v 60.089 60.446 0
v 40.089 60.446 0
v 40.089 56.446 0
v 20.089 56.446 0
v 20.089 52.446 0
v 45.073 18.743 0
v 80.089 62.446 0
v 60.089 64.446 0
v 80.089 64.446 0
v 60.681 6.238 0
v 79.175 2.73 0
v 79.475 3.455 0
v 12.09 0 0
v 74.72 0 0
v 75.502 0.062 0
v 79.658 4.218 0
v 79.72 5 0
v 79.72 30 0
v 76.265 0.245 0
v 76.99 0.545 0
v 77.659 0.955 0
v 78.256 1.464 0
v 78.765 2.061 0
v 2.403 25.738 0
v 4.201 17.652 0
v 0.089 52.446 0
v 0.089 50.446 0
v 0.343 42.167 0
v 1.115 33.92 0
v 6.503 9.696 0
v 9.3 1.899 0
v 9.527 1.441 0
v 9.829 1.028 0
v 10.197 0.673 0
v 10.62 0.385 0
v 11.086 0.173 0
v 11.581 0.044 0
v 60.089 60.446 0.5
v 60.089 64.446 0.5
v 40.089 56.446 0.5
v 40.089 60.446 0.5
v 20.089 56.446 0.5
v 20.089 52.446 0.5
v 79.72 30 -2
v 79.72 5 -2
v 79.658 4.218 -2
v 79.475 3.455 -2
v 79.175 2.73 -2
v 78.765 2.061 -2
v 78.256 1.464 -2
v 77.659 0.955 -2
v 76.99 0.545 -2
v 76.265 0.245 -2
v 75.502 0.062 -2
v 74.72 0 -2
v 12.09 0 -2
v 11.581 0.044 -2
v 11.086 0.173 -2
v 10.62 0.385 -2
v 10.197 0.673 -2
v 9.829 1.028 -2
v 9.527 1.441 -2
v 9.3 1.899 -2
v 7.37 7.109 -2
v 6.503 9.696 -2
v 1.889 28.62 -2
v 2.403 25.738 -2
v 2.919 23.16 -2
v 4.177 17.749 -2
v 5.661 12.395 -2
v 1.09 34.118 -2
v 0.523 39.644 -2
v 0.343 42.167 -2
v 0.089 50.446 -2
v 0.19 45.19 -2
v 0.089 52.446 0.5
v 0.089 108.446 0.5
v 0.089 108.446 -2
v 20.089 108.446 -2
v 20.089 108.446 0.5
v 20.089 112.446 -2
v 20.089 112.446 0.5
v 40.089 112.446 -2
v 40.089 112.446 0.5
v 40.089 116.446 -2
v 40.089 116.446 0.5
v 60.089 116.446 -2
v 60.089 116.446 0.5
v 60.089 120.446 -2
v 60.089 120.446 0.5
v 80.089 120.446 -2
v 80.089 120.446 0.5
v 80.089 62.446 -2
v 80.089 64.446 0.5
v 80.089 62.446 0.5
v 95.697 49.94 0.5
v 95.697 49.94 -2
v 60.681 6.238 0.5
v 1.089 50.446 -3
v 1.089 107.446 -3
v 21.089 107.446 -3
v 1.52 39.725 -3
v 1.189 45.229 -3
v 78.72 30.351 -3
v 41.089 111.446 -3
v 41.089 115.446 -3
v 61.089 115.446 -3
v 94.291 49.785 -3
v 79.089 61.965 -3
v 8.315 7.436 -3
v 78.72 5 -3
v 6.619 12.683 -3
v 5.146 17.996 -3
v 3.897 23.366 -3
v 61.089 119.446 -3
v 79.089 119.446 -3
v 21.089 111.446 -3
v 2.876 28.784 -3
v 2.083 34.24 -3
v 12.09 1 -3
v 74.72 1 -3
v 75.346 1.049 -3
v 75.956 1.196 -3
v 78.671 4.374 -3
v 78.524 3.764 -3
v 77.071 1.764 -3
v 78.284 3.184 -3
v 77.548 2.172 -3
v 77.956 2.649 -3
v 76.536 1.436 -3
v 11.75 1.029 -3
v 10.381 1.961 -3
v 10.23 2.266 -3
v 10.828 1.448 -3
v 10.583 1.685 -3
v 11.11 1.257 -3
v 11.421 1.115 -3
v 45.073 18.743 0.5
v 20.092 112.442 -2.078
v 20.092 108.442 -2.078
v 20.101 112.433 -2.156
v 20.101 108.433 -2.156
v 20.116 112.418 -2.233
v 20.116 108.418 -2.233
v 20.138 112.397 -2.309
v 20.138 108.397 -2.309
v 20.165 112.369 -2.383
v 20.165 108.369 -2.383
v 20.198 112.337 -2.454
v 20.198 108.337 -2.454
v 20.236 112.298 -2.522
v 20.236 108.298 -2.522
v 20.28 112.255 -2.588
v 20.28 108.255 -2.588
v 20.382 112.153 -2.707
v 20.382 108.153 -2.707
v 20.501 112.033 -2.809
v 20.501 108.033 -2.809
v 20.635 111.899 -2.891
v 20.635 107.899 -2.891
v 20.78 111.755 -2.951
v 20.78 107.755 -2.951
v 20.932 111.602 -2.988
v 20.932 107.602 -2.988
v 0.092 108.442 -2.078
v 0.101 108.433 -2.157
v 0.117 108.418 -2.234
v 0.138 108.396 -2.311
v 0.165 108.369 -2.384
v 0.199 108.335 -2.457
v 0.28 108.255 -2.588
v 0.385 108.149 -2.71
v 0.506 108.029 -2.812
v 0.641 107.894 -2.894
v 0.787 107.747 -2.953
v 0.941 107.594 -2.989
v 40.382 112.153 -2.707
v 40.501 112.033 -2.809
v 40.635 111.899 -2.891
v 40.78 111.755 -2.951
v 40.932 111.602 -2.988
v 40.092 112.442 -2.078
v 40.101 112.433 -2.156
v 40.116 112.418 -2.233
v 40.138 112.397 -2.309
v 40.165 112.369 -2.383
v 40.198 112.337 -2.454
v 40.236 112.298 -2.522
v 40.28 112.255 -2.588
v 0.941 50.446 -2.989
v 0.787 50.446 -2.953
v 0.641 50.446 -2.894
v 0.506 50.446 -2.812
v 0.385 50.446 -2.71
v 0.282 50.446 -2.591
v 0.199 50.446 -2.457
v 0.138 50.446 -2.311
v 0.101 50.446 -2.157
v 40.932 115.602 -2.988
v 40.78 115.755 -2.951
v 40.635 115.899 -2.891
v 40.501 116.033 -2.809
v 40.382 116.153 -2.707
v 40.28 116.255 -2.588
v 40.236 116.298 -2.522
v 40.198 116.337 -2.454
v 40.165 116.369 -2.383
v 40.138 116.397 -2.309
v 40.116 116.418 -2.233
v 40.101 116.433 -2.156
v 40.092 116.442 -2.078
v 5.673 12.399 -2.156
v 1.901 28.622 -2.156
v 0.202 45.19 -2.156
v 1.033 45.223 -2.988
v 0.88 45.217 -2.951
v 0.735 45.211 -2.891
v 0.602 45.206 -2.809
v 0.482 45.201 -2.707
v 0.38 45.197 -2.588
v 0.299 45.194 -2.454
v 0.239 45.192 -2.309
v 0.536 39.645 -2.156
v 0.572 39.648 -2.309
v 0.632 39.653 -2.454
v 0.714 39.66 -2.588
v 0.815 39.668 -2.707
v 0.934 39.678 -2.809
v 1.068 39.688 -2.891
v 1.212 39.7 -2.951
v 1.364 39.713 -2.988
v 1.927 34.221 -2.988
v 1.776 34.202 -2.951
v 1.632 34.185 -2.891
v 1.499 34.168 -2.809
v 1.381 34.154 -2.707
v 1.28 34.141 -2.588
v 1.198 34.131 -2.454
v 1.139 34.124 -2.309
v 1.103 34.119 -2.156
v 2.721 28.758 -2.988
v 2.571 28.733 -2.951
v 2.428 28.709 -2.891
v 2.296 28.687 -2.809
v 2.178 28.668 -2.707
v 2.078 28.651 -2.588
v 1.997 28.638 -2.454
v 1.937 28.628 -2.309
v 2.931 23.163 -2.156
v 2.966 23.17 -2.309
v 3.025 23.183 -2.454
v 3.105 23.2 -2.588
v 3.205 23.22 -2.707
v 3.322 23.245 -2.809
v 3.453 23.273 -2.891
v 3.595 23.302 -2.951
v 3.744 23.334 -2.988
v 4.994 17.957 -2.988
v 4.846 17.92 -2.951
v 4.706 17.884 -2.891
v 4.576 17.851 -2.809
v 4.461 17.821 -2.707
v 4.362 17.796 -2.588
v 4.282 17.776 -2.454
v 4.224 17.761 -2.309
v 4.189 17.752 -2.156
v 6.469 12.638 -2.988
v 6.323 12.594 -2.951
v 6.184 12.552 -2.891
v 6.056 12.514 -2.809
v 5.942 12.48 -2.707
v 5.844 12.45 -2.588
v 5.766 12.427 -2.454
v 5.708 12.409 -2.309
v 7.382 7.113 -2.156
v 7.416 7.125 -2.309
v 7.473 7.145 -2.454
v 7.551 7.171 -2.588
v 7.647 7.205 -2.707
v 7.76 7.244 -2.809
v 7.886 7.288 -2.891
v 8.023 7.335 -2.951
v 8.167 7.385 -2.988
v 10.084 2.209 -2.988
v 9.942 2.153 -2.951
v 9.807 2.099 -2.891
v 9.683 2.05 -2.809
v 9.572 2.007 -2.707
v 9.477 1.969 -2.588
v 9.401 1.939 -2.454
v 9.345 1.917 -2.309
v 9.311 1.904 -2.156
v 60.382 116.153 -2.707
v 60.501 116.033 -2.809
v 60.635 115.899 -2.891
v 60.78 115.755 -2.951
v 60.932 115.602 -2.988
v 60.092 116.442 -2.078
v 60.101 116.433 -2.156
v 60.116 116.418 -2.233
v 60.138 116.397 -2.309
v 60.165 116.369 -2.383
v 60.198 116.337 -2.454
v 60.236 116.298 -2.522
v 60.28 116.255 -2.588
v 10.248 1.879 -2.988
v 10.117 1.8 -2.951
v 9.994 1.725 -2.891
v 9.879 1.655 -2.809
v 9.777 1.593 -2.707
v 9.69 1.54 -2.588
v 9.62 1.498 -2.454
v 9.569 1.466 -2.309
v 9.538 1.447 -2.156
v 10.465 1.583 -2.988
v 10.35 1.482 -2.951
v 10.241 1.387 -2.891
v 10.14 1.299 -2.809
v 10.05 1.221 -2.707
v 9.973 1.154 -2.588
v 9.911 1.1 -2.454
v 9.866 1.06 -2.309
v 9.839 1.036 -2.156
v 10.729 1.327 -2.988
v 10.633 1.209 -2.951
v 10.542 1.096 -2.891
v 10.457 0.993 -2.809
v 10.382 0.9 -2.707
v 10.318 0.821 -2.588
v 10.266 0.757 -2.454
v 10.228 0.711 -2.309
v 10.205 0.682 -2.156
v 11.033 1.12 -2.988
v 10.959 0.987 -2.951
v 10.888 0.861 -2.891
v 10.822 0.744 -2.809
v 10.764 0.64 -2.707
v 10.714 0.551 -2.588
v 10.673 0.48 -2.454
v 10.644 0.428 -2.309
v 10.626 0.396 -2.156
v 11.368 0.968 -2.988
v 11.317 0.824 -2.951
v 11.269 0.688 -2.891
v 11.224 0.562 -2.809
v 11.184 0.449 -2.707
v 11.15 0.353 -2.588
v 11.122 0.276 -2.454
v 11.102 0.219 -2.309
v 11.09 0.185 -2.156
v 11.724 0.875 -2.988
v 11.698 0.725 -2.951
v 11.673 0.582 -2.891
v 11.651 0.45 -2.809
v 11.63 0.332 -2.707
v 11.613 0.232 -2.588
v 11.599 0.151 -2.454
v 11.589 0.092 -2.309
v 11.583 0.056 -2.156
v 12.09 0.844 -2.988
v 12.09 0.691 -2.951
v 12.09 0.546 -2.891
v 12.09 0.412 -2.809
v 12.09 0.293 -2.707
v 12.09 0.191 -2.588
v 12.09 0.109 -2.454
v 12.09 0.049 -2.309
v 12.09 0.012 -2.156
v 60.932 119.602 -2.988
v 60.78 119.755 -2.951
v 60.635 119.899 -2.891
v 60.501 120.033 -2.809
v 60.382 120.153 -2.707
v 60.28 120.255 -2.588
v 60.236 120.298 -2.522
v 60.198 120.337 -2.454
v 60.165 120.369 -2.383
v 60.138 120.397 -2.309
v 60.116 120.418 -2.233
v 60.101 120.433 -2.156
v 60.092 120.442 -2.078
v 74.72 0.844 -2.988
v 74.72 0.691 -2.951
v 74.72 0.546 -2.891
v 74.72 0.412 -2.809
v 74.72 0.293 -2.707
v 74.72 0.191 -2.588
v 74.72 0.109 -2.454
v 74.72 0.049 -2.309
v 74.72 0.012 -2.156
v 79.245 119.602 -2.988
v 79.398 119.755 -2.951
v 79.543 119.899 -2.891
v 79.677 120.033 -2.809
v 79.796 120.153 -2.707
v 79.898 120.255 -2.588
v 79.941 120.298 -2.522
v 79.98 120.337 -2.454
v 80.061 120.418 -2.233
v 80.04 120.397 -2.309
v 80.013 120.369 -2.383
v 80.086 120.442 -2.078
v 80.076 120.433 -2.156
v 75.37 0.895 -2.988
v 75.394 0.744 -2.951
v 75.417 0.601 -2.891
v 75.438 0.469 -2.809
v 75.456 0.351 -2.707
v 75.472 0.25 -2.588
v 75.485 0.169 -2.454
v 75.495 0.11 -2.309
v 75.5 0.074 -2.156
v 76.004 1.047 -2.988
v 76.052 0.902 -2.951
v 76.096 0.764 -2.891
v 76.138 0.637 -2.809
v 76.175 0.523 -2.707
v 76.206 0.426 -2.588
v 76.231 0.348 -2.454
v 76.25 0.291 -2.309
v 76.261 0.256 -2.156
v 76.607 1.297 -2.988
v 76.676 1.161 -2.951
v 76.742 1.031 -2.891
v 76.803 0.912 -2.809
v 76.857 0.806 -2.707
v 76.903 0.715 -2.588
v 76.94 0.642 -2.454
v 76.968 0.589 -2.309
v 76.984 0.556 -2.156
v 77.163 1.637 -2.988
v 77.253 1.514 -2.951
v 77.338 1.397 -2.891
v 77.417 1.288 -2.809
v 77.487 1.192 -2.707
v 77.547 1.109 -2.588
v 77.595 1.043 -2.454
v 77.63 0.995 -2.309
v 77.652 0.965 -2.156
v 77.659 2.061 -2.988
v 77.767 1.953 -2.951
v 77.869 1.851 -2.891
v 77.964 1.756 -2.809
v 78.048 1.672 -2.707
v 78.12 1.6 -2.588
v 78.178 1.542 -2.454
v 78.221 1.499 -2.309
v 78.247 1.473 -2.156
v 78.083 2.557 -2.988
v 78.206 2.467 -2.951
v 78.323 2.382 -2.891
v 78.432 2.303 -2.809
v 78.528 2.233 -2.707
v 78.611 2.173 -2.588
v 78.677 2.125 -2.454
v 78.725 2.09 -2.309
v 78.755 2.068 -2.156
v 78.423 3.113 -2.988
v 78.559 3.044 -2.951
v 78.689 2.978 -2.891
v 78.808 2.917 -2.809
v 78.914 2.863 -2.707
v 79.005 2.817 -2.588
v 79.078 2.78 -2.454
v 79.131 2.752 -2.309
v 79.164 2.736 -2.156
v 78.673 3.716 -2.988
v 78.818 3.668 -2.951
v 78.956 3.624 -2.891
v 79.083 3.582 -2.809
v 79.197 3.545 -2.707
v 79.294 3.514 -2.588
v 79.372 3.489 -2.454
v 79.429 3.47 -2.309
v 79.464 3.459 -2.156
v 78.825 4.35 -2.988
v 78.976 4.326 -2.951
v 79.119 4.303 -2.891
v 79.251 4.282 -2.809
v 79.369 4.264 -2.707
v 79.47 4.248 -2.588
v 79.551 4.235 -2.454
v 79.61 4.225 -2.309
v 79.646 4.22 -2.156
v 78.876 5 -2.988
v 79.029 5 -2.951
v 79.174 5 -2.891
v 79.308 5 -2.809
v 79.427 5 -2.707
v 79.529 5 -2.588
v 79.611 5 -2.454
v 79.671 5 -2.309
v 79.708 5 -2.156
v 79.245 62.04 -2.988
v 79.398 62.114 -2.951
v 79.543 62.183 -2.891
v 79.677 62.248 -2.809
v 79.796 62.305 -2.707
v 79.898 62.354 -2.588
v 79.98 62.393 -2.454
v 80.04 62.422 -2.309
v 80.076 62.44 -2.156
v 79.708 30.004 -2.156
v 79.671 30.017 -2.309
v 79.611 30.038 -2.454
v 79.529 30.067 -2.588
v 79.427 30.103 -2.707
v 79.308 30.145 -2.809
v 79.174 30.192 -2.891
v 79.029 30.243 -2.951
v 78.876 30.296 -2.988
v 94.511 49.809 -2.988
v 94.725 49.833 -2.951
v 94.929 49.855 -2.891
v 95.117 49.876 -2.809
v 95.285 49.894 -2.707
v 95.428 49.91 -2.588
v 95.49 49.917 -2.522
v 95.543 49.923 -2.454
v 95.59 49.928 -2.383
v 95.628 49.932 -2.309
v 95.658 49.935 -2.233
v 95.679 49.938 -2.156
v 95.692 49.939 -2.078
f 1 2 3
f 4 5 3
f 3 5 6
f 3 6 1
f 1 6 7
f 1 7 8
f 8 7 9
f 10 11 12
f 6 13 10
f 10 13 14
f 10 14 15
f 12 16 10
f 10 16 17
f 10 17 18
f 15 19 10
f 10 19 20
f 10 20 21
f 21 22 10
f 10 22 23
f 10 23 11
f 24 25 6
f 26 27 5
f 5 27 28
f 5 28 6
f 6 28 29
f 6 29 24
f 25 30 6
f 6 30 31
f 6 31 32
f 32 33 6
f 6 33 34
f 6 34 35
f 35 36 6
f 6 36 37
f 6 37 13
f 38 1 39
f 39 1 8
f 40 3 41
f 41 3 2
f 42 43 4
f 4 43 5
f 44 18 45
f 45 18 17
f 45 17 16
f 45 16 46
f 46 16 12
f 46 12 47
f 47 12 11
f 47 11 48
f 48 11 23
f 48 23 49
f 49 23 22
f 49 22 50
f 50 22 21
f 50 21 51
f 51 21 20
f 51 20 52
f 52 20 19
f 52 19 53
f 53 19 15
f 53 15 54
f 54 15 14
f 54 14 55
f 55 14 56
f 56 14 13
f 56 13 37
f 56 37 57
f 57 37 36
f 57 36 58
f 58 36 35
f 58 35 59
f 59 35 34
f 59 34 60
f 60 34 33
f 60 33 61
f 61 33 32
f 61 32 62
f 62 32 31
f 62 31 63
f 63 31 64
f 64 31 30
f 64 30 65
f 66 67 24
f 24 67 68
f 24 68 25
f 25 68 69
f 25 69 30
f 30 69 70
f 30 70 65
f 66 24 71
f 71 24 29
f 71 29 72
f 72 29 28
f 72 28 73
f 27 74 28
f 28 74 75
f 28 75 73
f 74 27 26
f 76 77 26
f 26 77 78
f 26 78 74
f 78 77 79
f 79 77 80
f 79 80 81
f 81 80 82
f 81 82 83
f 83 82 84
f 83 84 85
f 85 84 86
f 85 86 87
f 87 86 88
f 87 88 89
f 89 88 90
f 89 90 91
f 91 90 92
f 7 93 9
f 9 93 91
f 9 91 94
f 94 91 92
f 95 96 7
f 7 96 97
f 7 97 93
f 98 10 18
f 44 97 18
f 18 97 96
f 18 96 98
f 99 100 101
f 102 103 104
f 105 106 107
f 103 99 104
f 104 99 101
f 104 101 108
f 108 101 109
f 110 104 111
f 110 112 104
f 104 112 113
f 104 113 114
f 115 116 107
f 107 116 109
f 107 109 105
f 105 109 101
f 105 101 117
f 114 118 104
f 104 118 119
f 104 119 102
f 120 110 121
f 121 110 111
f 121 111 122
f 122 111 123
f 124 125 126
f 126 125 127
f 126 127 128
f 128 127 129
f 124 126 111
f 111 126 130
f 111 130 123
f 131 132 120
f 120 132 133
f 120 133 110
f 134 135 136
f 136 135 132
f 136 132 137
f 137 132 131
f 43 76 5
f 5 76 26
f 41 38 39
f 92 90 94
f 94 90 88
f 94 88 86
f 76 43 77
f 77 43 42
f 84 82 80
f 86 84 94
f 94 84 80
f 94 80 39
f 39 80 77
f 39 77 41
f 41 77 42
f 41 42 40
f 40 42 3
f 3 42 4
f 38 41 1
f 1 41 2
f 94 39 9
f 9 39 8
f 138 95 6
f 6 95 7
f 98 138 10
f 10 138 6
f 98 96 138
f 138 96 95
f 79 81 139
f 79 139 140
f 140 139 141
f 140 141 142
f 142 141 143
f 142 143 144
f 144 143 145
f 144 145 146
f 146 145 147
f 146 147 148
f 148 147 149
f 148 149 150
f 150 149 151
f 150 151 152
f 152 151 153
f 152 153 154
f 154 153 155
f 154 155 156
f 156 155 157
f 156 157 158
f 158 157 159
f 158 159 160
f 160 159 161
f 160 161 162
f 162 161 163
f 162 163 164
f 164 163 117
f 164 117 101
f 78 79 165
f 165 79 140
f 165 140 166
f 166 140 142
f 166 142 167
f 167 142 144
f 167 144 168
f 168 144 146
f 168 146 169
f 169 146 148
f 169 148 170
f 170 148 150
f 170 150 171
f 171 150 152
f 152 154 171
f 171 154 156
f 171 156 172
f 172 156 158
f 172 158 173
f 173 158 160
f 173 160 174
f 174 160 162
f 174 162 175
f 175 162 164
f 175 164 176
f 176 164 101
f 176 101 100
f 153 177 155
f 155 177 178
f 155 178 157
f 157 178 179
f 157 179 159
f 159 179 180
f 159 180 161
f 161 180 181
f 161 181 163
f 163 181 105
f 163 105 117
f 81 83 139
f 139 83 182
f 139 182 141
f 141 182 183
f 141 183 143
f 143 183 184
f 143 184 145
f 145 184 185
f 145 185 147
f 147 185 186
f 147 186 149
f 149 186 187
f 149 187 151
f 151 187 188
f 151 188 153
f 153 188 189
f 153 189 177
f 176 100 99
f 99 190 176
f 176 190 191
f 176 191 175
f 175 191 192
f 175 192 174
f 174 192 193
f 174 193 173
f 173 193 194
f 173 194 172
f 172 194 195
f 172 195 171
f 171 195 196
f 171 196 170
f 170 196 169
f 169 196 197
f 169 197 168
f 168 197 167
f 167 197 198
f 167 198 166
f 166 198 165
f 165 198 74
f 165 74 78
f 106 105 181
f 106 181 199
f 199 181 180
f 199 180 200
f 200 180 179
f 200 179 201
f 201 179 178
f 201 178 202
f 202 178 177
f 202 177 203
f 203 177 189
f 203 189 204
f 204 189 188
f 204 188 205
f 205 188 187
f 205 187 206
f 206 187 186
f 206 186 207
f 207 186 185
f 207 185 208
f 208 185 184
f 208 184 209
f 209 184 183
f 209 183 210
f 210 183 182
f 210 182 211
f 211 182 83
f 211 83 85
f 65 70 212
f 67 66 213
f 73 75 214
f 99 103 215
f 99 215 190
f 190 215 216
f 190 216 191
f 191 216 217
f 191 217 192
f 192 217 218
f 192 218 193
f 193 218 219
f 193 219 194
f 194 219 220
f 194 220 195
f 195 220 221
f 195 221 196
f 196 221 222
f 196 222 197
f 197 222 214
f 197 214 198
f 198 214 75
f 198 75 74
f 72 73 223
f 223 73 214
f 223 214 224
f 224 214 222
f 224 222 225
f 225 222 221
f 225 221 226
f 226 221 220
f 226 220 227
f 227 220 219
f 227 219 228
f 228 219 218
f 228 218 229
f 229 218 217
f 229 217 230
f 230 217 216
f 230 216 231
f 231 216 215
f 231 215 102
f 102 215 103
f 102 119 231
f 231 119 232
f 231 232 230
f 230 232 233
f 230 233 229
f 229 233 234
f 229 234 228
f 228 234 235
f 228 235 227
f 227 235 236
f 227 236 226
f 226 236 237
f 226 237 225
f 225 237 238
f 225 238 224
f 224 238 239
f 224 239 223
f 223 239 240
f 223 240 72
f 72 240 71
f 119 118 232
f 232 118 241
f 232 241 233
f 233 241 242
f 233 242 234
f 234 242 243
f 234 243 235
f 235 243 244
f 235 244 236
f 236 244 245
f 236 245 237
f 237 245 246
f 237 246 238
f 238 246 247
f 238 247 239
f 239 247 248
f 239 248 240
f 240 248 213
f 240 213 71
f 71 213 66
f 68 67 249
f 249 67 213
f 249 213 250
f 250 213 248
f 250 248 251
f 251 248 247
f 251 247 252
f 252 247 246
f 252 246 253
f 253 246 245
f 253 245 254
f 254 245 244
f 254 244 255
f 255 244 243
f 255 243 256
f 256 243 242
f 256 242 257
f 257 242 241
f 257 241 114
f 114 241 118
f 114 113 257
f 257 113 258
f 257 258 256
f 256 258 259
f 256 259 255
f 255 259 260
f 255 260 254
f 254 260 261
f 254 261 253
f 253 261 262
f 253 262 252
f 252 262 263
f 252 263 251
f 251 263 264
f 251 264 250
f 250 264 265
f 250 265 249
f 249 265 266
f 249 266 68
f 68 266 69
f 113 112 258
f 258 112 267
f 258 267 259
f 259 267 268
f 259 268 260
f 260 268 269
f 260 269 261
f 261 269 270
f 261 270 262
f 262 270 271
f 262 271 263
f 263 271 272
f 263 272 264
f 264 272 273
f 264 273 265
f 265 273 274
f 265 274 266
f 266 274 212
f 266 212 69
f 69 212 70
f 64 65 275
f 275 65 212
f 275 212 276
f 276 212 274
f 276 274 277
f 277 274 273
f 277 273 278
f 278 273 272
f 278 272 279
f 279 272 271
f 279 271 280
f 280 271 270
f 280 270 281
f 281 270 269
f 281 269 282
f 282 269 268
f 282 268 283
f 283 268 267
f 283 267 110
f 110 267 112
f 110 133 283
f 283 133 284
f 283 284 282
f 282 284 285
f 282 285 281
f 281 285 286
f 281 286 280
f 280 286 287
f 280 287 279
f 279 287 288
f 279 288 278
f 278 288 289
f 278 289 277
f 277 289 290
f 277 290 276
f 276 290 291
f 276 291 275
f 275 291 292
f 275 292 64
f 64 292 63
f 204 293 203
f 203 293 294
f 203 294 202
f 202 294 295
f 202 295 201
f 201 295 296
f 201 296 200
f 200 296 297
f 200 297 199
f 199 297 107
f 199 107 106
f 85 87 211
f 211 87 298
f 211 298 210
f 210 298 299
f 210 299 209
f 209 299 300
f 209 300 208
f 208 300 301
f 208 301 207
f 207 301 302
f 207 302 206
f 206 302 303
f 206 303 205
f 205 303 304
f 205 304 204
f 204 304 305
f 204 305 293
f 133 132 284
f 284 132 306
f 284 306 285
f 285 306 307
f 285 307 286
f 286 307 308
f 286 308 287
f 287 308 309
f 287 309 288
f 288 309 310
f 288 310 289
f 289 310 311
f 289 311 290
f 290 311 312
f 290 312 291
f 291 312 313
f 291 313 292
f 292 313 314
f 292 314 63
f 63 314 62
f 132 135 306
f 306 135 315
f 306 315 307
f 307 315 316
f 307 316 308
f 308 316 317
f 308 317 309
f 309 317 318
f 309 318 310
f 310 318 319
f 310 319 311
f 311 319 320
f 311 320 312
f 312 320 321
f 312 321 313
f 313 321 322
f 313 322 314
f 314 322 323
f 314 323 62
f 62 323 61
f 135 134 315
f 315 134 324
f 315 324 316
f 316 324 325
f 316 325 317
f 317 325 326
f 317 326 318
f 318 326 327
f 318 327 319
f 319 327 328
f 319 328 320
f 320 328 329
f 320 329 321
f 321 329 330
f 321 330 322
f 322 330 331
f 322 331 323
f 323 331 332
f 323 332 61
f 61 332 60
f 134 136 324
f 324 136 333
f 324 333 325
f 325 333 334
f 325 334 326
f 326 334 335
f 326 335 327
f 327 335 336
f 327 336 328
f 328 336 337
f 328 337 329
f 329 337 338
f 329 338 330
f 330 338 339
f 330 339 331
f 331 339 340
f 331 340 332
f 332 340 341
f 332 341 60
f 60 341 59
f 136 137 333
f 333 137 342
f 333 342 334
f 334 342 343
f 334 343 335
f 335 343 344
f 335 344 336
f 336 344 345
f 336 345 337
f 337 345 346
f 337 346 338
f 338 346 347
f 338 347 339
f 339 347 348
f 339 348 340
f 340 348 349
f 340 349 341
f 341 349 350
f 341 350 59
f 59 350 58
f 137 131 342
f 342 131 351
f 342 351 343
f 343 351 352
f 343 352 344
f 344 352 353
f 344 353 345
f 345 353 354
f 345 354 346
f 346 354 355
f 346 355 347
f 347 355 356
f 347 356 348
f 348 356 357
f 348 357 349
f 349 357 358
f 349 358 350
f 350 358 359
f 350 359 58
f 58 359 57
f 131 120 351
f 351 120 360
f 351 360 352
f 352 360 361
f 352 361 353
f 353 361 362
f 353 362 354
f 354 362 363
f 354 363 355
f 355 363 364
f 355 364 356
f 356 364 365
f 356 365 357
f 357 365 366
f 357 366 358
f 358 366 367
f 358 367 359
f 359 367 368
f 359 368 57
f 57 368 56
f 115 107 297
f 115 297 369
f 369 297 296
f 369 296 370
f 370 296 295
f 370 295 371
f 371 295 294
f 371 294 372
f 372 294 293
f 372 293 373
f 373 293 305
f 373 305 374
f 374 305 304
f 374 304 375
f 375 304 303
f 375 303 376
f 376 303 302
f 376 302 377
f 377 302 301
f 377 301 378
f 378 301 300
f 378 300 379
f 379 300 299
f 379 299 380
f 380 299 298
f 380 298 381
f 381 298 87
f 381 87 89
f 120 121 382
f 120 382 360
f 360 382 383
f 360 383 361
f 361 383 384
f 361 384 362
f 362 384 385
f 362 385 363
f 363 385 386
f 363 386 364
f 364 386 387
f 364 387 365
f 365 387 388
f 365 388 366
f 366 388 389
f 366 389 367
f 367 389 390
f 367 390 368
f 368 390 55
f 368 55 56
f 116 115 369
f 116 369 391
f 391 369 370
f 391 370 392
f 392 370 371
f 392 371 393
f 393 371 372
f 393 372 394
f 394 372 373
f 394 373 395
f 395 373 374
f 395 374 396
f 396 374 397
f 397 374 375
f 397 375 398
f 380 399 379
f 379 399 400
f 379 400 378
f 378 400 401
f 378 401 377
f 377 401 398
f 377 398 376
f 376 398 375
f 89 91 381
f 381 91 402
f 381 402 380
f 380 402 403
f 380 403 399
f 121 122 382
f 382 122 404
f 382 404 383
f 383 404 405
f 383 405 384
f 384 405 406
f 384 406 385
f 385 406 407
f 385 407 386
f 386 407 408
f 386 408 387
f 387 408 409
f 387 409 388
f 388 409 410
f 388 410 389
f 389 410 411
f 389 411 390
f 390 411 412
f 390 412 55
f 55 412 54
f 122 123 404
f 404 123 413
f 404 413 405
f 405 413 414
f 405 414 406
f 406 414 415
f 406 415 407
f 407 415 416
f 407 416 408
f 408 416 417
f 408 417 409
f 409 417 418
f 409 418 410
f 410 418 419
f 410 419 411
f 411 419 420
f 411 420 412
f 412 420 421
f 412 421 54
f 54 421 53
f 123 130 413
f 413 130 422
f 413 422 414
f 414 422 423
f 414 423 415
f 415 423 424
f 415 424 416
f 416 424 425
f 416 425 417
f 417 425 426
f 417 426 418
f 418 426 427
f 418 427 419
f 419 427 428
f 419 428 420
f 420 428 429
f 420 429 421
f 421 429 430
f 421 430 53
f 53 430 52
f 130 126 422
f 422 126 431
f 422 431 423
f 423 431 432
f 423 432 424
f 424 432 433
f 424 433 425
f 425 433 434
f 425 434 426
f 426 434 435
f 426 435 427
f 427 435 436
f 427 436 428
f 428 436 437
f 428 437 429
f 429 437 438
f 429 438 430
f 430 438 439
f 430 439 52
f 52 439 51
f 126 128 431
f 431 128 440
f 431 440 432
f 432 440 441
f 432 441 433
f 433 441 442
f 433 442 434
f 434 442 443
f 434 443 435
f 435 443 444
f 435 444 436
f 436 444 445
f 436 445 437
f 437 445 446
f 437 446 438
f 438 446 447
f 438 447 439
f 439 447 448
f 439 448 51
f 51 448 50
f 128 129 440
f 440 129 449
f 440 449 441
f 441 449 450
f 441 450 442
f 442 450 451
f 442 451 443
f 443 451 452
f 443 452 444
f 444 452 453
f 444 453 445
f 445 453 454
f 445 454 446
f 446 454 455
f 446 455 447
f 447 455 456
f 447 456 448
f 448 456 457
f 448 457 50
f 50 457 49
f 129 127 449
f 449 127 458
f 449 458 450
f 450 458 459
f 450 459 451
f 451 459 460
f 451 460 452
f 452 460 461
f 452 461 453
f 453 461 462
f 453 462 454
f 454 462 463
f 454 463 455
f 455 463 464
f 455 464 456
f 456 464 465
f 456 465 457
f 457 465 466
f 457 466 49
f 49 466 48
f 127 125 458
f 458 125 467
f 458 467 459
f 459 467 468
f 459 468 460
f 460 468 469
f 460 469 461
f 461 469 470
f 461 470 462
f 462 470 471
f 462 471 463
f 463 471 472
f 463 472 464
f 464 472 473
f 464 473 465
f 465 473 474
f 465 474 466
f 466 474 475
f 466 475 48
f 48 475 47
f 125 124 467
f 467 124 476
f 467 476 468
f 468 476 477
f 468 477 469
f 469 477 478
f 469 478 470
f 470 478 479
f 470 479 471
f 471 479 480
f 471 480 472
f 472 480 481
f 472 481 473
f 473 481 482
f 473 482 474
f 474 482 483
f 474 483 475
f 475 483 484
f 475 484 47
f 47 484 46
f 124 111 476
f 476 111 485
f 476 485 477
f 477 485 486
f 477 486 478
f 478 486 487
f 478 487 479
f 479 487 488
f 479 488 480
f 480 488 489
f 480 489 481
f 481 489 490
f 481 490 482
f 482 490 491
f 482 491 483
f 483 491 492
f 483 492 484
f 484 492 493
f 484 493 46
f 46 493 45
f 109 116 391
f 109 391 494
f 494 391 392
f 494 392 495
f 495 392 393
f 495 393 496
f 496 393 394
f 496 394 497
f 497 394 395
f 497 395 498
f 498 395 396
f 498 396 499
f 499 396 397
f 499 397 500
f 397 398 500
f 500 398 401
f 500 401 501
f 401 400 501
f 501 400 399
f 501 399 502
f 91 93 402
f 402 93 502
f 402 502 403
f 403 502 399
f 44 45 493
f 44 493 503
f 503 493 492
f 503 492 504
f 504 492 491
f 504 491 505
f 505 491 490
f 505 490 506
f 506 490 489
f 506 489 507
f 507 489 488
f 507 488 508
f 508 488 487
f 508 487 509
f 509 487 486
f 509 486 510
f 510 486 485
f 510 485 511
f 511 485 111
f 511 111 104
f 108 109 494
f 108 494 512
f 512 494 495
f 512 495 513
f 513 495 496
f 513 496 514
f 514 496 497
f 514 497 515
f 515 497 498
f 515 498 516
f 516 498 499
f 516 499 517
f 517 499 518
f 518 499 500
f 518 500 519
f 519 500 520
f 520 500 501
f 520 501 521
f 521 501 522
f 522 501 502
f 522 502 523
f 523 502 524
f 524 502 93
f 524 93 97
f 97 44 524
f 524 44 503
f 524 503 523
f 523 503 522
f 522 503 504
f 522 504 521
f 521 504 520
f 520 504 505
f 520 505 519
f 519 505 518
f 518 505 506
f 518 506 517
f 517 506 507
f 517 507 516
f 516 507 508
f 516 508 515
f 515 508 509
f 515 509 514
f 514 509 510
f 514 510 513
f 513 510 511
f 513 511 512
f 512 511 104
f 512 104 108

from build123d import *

# Parameters (mm, degrees)
BOSS_EXTRUDE1_DEPTH  = 3
SKETCH2_W            = 20
SKETCH2_H            = 56
BOSS_EXTRUDE2_DEPTH  = 0.5
SKETCH5_W            = 20
SKETCH5_H            = 56
BOSS_EXTRUDE3_DEPTH  = 0.5
SKETCH6_W            = 20
SKETCH6_H            = 56
BOSS_EXTRUDE4_DEPTH  = 0.5
SKETCH7_W            = 20
SKETCH7_H            = 56
BOSS_EXTRUDE5_DEPTH  = 0.5
BOSS_EXTRUDE18_DEPTH = 0.5
FILLET1_R            = 1


with BuildPart() as part:
    # Sketch1 → Boss-Extrude1 (new body)
    with BuildSketch(Plane.XY):
        with BuildLine():
            Line((0.088772672, 50.445513271), (0.088772672, 108.445513271))
            Line((0.088772672, 108.445513271), (20.088772672, 108.445513271))
            Line((20.088772672, 108.445513271), (20.088772672, 112.445513271))
            Line((20.088772672, 112.445513271), (40.088772672, 112.445513271))
            Line((40.088772672, 112.445513271), (40.088772672, 116.445513271))
            Line((40.088772672, 116.445513271), (60.088772672, 116.445513271))
            Line((60.088772672, 116.445513271), (60.088772672, 120.445513271))
            Line((60.088772672, 120.445513271), (80.088772672, 120.445513271))
            Line((80.088772672, 120.445513271), (80.088772672, 62.445513271))
            Line((80.088772672, 62.445513271), (95.696655206, 49.939754486))
            Line((95.696655206, 49.939754486), (79.719999866, 30))
            Line((79.719999866, 30), (79.719999866, 5))
            ThreePointArc((79.719999866, 5), (78.255533771, 1.464466094), (74.719999866, 0))
            Line((74.719999866, 0), (45.081340107, 0))
            Line((45.081340107, 0), (12.090244869, 0))
            ThreePointArc((12.090244869, 0), (10.402431062, 0.519821669), (9.299525382, 1.899143631))
            ThreePointArc((9.299525382, 1.899143631), (2.402932305, 25.737613543), (0.088772672, 50.445513271))
        make_face()
    extrude(amount=-BOSS_EXTRUDE1_DEPTH)

    # Sketch2 → Boss-Extrude2 (add)
    with BuildSketch(Plane.XY):
        with Locations((10.088772672, 80.445513271)):
            Rectangle(SKETCH2_W, SKETCH2_H)
    extrude(amount=BOSS_EXTRUDE2_DEPTH)

    # Sketch5 → Boss-Extrude3 (add)
    with BuildSketch(Plane.XY):
        with Locations((30.088772672, 84.445513271)):
            Rectangle(SKETCH5_W, SKETCH5_H)
    extrude(amount=BOSS_EXTRUDE3_DEPTH)

    # Sketch6 → Boss-Extrude4 (add)
    with BuildSketch(Plane.XY):
        with Locations((50.088772672, 88.445513271)):
            Rectangle(SKETCH6_W, SKETCH6_H)
    extrude(amount=BOSS_EXTRUDE4_DEPTH)

    # Sketch7 → Boss-Extrude5 (add)
    with BuildSketch(Plane.XY):
        with Locations((70.088772672, 92.445513271)):
            Rectangle(SKETCH7_W, SKETCH7_H)
    extrude(amount=BOSS_EXTRUDE5_DEPTH)

    # Sketch10 → Boss-Extrude18 (add)
    with BuildSketch(Plane.XY):
        Polygon((80.088772672, 62.445513271), (95.696655206, 49.939754486), (60.680530606, 6.23768339), (45.072648072, 18.743442176), align=None)
    extrude(amount=BOSS_EXTRUDE18_DEPTH)

    # Fillet1
    fillet1_edges = [part.edges().sort_by_distance(p)[0] for p in [
        (87.892713939, 56.192633878, -3),
        (80.088772672, 91.445513271, -3),
        (70.088772672, 120.445513271, -3),
        (60.088772672, 118.445513271, -3),
        (50.088772672, 116.445513271, -3),
        (40.088772672, 114.445513271, -3),
        (30.088772672, 112.445513271, -3),
        (20.088772672, 110.445513271, -3),
        (10.088772672, 108.445513271, -3),
        (0.088772672, 79.445513271, -3),
        (79.719999866, 17.5, -3),
        (2.402932305, 25.737613543, -3),
        (10.402431062, 0.519821669, -3),
        (43.405122367, 0, -3),
        (78.255533771, 1.464466094, -3),
        (87.708327536, 39.969877243, -3),
    ]]
    fillet(fillet1_edges, radius=FILLET1_R)


solid = part.part
